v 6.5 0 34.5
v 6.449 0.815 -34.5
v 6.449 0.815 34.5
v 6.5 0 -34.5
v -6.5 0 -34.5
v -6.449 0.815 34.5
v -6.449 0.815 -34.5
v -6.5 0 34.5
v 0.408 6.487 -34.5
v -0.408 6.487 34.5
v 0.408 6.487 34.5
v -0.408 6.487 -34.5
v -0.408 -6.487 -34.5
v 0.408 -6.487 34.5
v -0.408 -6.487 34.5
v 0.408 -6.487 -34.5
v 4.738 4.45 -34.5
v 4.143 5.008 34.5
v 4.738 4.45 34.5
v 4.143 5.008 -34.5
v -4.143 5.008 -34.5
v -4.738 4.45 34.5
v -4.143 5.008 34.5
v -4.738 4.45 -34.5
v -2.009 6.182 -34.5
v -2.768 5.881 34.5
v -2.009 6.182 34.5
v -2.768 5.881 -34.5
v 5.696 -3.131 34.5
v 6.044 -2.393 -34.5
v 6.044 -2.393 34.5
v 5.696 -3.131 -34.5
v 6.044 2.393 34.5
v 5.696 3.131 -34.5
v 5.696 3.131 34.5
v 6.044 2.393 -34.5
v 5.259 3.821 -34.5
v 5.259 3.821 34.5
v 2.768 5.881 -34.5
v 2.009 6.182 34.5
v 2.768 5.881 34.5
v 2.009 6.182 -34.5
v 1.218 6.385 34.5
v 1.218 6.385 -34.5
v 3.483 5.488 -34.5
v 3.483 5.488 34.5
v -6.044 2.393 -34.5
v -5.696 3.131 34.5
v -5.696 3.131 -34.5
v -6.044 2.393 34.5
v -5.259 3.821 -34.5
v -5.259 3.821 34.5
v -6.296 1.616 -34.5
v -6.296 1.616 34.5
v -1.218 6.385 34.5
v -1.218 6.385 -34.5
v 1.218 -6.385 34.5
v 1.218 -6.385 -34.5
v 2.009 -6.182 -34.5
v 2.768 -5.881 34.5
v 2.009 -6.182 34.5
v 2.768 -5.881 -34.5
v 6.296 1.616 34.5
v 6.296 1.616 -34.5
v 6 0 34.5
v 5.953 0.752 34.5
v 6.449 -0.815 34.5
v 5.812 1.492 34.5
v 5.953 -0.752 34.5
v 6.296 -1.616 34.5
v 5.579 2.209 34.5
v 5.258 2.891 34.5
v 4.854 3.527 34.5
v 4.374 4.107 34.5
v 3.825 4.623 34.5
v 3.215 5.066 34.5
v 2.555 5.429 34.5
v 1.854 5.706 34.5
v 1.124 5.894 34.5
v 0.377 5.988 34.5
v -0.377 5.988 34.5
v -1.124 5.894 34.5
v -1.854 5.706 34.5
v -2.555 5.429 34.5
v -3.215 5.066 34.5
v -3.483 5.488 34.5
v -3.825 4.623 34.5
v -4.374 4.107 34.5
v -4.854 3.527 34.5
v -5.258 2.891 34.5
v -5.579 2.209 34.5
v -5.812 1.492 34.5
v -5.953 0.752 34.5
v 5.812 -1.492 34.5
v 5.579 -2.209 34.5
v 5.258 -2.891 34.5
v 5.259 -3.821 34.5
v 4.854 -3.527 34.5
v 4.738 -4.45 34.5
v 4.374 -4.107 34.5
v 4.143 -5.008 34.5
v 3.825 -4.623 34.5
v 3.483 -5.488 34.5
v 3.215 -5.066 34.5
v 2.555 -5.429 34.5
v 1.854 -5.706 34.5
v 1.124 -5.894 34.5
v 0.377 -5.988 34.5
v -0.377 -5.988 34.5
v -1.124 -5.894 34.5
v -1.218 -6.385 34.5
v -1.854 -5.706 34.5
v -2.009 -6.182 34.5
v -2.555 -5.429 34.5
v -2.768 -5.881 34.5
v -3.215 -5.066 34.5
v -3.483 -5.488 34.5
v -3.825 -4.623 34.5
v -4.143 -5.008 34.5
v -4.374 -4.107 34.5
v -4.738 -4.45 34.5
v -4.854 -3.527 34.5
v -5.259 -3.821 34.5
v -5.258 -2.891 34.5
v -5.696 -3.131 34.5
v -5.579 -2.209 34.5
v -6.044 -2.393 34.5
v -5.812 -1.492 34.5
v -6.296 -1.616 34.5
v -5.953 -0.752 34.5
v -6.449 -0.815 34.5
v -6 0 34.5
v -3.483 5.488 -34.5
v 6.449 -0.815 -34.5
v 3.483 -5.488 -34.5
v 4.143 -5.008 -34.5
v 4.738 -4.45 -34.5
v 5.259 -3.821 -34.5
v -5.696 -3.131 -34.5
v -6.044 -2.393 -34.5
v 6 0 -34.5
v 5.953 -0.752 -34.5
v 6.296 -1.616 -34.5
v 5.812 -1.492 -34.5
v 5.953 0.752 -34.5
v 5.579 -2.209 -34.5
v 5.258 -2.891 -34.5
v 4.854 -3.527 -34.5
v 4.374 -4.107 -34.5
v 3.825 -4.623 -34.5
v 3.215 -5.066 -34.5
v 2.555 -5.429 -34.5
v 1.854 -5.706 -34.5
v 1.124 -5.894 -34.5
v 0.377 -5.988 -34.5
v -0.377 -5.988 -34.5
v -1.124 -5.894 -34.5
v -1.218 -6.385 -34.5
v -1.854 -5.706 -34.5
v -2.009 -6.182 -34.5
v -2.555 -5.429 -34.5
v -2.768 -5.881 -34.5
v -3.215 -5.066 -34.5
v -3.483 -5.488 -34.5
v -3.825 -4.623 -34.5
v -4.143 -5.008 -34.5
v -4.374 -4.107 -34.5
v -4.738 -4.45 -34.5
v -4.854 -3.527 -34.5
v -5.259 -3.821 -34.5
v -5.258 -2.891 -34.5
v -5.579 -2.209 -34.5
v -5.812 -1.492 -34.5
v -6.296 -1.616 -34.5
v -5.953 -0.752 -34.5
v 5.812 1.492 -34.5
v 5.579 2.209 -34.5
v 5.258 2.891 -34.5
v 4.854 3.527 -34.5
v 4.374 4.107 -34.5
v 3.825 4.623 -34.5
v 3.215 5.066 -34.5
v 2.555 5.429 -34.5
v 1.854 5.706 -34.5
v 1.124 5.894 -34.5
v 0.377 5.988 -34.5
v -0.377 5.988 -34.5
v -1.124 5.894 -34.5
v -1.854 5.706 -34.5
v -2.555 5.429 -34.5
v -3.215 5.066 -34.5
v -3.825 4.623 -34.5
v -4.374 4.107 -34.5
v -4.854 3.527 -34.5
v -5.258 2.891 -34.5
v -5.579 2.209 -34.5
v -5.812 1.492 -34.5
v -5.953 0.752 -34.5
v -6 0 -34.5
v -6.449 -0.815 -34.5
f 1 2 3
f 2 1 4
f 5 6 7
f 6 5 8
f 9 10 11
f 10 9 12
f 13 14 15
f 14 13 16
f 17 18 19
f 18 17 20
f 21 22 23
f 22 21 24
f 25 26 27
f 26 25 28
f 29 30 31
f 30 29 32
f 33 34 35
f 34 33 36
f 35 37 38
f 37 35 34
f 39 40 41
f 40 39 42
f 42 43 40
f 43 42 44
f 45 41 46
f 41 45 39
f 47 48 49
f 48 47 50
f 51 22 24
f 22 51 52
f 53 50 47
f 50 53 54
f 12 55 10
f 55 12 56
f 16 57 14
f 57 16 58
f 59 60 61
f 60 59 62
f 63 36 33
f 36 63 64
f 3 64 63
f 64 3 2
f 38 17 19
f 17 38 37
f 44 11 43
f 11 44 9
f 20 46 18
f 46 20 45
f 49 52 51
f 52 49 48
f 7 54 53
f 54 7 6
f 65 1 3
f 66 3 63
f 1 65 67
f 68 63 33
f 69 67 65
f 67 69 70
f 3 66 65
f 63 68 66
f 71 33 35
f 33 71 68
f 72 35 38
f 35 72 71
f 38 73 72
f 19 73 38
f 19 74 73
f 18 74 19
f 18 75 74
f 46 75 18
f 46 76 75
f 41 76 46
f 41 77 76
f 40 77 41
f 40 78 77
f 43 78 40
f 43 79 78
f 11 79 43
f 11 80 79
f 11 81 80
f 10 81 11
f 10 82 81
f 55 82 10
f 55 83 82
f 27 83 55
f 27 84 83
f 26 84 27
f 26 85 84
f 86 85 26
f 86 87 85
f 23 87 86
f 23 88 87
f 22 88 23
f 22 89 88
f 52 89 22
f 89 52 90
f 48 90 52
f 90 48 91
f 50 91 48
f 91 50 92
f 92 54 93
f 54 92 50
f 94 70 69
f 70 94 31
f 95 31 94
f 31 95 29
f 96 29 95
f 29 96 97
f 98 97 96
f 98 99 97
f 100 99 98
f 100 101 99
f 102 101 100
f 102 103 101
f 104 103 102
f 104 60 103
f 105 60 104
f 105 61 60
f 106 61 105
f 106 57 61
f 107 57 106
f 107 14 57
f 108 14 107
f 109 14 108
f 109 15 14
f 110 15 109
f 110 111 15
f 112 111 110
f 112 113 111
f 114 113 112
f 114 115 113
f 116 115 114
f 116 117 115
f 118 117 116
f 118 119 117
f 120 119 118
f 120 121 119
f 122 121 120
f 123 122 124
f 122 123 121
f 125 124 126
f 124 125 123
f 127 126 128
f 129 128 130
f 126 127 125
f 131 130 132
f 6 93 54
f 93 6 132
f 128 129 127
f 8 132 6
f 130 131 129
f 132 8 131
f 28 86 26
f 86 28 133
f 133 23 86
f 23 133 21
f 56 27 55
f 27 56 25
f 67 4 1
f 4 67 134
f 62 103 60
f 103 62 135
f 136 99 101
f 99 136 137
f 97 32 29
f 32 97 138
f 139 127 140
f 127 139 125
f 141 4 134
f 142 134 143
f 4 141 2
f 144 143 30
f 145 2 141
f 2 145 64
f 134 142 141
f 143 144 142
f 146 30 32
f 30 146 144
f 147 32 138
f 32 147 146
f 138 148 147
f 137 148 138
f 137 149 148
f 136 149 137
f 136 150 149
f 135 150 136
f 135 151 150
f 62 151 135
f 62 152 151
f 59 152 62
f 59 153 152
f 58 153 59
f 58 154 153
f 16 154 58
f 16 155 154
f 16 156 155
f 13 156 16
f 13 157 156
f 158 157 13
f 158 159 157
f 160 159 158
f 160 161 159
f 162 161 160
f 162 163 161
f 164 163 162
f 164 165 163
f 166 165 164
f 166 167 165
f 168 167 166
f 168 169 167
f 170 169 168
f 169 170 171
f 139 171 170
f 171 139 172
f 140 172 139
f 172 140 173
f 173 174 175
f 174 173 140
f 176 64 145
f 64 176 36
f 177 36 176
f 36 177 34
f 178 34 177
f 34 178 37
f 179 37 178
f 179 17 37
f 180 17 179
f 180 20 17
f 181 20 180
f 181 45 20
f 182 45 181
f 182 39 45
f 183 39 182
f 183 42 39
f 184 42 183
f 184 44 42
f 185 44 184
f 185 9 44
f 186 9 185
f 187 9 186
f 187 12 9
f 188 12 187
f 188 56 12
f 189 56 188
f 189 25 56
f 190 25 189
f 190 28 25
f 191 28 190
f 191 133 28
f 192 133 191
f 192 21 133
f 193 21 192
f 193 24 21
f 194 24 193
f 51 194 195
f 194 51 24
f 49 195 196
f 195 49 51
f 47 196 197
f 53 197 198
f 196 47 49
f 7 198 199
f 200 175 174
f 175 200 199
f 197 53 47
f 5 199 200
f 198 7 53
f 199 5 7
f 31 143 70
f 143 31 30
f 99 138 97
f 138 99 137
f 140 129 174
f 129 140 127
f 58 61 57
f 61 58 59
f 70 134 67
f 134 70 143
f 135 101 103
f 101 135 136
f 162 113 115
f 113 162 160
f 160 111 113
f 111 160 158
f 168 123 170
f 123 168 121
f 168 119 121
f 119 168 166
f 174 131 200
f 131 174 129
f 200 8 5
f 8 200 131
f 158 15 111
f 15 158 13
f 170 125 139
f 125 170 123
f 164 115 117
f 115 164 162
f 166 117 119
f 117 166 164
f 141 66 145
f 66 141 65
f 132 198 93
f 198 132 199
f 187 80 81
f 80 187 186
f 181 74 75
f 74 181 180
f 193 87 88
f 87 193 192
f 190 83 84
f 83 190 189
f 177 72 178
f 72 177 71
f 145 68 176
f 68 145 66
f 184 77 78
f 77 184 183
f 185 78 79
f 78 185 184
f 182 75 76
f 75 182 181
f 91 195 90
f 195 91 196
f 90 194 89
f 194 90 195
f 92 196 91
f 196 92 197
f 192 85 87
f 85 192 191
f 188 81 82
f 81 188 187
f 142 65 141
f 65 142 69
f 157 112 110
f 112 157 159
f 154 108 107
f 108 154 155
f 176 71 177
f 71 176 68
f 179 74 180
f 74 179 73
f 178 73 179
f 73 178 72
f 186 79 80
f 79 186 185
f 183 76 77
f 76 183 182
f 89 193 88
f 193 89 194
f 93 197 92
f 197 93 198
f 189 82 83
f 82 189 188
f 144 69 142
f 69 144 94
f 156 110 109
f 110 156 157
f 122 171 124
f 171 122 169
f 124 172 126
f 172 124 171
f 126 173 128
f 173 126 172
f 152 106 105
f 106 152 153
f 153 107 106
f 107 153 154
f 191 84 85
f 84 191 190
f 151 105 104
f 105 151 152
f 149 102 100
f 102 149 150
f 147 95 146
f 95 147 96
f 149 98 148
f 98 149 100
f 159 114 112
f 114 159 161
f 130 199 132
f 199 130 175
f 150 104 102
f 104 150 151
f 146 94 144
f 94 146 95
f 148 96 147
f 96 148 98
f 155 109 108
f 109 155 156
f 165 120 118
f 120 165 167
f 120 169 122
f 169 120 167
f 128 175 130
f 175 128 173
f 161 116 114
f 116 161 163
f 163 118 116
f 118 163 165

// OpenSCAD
$fn = 50;


difference() {
	union() {
		translate(v = [0, 0, -34.5000000000]) {
			cylinder(h = 69, r = 6.5000000000);
		}
	}
	union() {
		translate(v = [0, 0, -100.0000000000]) {
			cylinder(h = 200, r = 6);
		}
	}
}
